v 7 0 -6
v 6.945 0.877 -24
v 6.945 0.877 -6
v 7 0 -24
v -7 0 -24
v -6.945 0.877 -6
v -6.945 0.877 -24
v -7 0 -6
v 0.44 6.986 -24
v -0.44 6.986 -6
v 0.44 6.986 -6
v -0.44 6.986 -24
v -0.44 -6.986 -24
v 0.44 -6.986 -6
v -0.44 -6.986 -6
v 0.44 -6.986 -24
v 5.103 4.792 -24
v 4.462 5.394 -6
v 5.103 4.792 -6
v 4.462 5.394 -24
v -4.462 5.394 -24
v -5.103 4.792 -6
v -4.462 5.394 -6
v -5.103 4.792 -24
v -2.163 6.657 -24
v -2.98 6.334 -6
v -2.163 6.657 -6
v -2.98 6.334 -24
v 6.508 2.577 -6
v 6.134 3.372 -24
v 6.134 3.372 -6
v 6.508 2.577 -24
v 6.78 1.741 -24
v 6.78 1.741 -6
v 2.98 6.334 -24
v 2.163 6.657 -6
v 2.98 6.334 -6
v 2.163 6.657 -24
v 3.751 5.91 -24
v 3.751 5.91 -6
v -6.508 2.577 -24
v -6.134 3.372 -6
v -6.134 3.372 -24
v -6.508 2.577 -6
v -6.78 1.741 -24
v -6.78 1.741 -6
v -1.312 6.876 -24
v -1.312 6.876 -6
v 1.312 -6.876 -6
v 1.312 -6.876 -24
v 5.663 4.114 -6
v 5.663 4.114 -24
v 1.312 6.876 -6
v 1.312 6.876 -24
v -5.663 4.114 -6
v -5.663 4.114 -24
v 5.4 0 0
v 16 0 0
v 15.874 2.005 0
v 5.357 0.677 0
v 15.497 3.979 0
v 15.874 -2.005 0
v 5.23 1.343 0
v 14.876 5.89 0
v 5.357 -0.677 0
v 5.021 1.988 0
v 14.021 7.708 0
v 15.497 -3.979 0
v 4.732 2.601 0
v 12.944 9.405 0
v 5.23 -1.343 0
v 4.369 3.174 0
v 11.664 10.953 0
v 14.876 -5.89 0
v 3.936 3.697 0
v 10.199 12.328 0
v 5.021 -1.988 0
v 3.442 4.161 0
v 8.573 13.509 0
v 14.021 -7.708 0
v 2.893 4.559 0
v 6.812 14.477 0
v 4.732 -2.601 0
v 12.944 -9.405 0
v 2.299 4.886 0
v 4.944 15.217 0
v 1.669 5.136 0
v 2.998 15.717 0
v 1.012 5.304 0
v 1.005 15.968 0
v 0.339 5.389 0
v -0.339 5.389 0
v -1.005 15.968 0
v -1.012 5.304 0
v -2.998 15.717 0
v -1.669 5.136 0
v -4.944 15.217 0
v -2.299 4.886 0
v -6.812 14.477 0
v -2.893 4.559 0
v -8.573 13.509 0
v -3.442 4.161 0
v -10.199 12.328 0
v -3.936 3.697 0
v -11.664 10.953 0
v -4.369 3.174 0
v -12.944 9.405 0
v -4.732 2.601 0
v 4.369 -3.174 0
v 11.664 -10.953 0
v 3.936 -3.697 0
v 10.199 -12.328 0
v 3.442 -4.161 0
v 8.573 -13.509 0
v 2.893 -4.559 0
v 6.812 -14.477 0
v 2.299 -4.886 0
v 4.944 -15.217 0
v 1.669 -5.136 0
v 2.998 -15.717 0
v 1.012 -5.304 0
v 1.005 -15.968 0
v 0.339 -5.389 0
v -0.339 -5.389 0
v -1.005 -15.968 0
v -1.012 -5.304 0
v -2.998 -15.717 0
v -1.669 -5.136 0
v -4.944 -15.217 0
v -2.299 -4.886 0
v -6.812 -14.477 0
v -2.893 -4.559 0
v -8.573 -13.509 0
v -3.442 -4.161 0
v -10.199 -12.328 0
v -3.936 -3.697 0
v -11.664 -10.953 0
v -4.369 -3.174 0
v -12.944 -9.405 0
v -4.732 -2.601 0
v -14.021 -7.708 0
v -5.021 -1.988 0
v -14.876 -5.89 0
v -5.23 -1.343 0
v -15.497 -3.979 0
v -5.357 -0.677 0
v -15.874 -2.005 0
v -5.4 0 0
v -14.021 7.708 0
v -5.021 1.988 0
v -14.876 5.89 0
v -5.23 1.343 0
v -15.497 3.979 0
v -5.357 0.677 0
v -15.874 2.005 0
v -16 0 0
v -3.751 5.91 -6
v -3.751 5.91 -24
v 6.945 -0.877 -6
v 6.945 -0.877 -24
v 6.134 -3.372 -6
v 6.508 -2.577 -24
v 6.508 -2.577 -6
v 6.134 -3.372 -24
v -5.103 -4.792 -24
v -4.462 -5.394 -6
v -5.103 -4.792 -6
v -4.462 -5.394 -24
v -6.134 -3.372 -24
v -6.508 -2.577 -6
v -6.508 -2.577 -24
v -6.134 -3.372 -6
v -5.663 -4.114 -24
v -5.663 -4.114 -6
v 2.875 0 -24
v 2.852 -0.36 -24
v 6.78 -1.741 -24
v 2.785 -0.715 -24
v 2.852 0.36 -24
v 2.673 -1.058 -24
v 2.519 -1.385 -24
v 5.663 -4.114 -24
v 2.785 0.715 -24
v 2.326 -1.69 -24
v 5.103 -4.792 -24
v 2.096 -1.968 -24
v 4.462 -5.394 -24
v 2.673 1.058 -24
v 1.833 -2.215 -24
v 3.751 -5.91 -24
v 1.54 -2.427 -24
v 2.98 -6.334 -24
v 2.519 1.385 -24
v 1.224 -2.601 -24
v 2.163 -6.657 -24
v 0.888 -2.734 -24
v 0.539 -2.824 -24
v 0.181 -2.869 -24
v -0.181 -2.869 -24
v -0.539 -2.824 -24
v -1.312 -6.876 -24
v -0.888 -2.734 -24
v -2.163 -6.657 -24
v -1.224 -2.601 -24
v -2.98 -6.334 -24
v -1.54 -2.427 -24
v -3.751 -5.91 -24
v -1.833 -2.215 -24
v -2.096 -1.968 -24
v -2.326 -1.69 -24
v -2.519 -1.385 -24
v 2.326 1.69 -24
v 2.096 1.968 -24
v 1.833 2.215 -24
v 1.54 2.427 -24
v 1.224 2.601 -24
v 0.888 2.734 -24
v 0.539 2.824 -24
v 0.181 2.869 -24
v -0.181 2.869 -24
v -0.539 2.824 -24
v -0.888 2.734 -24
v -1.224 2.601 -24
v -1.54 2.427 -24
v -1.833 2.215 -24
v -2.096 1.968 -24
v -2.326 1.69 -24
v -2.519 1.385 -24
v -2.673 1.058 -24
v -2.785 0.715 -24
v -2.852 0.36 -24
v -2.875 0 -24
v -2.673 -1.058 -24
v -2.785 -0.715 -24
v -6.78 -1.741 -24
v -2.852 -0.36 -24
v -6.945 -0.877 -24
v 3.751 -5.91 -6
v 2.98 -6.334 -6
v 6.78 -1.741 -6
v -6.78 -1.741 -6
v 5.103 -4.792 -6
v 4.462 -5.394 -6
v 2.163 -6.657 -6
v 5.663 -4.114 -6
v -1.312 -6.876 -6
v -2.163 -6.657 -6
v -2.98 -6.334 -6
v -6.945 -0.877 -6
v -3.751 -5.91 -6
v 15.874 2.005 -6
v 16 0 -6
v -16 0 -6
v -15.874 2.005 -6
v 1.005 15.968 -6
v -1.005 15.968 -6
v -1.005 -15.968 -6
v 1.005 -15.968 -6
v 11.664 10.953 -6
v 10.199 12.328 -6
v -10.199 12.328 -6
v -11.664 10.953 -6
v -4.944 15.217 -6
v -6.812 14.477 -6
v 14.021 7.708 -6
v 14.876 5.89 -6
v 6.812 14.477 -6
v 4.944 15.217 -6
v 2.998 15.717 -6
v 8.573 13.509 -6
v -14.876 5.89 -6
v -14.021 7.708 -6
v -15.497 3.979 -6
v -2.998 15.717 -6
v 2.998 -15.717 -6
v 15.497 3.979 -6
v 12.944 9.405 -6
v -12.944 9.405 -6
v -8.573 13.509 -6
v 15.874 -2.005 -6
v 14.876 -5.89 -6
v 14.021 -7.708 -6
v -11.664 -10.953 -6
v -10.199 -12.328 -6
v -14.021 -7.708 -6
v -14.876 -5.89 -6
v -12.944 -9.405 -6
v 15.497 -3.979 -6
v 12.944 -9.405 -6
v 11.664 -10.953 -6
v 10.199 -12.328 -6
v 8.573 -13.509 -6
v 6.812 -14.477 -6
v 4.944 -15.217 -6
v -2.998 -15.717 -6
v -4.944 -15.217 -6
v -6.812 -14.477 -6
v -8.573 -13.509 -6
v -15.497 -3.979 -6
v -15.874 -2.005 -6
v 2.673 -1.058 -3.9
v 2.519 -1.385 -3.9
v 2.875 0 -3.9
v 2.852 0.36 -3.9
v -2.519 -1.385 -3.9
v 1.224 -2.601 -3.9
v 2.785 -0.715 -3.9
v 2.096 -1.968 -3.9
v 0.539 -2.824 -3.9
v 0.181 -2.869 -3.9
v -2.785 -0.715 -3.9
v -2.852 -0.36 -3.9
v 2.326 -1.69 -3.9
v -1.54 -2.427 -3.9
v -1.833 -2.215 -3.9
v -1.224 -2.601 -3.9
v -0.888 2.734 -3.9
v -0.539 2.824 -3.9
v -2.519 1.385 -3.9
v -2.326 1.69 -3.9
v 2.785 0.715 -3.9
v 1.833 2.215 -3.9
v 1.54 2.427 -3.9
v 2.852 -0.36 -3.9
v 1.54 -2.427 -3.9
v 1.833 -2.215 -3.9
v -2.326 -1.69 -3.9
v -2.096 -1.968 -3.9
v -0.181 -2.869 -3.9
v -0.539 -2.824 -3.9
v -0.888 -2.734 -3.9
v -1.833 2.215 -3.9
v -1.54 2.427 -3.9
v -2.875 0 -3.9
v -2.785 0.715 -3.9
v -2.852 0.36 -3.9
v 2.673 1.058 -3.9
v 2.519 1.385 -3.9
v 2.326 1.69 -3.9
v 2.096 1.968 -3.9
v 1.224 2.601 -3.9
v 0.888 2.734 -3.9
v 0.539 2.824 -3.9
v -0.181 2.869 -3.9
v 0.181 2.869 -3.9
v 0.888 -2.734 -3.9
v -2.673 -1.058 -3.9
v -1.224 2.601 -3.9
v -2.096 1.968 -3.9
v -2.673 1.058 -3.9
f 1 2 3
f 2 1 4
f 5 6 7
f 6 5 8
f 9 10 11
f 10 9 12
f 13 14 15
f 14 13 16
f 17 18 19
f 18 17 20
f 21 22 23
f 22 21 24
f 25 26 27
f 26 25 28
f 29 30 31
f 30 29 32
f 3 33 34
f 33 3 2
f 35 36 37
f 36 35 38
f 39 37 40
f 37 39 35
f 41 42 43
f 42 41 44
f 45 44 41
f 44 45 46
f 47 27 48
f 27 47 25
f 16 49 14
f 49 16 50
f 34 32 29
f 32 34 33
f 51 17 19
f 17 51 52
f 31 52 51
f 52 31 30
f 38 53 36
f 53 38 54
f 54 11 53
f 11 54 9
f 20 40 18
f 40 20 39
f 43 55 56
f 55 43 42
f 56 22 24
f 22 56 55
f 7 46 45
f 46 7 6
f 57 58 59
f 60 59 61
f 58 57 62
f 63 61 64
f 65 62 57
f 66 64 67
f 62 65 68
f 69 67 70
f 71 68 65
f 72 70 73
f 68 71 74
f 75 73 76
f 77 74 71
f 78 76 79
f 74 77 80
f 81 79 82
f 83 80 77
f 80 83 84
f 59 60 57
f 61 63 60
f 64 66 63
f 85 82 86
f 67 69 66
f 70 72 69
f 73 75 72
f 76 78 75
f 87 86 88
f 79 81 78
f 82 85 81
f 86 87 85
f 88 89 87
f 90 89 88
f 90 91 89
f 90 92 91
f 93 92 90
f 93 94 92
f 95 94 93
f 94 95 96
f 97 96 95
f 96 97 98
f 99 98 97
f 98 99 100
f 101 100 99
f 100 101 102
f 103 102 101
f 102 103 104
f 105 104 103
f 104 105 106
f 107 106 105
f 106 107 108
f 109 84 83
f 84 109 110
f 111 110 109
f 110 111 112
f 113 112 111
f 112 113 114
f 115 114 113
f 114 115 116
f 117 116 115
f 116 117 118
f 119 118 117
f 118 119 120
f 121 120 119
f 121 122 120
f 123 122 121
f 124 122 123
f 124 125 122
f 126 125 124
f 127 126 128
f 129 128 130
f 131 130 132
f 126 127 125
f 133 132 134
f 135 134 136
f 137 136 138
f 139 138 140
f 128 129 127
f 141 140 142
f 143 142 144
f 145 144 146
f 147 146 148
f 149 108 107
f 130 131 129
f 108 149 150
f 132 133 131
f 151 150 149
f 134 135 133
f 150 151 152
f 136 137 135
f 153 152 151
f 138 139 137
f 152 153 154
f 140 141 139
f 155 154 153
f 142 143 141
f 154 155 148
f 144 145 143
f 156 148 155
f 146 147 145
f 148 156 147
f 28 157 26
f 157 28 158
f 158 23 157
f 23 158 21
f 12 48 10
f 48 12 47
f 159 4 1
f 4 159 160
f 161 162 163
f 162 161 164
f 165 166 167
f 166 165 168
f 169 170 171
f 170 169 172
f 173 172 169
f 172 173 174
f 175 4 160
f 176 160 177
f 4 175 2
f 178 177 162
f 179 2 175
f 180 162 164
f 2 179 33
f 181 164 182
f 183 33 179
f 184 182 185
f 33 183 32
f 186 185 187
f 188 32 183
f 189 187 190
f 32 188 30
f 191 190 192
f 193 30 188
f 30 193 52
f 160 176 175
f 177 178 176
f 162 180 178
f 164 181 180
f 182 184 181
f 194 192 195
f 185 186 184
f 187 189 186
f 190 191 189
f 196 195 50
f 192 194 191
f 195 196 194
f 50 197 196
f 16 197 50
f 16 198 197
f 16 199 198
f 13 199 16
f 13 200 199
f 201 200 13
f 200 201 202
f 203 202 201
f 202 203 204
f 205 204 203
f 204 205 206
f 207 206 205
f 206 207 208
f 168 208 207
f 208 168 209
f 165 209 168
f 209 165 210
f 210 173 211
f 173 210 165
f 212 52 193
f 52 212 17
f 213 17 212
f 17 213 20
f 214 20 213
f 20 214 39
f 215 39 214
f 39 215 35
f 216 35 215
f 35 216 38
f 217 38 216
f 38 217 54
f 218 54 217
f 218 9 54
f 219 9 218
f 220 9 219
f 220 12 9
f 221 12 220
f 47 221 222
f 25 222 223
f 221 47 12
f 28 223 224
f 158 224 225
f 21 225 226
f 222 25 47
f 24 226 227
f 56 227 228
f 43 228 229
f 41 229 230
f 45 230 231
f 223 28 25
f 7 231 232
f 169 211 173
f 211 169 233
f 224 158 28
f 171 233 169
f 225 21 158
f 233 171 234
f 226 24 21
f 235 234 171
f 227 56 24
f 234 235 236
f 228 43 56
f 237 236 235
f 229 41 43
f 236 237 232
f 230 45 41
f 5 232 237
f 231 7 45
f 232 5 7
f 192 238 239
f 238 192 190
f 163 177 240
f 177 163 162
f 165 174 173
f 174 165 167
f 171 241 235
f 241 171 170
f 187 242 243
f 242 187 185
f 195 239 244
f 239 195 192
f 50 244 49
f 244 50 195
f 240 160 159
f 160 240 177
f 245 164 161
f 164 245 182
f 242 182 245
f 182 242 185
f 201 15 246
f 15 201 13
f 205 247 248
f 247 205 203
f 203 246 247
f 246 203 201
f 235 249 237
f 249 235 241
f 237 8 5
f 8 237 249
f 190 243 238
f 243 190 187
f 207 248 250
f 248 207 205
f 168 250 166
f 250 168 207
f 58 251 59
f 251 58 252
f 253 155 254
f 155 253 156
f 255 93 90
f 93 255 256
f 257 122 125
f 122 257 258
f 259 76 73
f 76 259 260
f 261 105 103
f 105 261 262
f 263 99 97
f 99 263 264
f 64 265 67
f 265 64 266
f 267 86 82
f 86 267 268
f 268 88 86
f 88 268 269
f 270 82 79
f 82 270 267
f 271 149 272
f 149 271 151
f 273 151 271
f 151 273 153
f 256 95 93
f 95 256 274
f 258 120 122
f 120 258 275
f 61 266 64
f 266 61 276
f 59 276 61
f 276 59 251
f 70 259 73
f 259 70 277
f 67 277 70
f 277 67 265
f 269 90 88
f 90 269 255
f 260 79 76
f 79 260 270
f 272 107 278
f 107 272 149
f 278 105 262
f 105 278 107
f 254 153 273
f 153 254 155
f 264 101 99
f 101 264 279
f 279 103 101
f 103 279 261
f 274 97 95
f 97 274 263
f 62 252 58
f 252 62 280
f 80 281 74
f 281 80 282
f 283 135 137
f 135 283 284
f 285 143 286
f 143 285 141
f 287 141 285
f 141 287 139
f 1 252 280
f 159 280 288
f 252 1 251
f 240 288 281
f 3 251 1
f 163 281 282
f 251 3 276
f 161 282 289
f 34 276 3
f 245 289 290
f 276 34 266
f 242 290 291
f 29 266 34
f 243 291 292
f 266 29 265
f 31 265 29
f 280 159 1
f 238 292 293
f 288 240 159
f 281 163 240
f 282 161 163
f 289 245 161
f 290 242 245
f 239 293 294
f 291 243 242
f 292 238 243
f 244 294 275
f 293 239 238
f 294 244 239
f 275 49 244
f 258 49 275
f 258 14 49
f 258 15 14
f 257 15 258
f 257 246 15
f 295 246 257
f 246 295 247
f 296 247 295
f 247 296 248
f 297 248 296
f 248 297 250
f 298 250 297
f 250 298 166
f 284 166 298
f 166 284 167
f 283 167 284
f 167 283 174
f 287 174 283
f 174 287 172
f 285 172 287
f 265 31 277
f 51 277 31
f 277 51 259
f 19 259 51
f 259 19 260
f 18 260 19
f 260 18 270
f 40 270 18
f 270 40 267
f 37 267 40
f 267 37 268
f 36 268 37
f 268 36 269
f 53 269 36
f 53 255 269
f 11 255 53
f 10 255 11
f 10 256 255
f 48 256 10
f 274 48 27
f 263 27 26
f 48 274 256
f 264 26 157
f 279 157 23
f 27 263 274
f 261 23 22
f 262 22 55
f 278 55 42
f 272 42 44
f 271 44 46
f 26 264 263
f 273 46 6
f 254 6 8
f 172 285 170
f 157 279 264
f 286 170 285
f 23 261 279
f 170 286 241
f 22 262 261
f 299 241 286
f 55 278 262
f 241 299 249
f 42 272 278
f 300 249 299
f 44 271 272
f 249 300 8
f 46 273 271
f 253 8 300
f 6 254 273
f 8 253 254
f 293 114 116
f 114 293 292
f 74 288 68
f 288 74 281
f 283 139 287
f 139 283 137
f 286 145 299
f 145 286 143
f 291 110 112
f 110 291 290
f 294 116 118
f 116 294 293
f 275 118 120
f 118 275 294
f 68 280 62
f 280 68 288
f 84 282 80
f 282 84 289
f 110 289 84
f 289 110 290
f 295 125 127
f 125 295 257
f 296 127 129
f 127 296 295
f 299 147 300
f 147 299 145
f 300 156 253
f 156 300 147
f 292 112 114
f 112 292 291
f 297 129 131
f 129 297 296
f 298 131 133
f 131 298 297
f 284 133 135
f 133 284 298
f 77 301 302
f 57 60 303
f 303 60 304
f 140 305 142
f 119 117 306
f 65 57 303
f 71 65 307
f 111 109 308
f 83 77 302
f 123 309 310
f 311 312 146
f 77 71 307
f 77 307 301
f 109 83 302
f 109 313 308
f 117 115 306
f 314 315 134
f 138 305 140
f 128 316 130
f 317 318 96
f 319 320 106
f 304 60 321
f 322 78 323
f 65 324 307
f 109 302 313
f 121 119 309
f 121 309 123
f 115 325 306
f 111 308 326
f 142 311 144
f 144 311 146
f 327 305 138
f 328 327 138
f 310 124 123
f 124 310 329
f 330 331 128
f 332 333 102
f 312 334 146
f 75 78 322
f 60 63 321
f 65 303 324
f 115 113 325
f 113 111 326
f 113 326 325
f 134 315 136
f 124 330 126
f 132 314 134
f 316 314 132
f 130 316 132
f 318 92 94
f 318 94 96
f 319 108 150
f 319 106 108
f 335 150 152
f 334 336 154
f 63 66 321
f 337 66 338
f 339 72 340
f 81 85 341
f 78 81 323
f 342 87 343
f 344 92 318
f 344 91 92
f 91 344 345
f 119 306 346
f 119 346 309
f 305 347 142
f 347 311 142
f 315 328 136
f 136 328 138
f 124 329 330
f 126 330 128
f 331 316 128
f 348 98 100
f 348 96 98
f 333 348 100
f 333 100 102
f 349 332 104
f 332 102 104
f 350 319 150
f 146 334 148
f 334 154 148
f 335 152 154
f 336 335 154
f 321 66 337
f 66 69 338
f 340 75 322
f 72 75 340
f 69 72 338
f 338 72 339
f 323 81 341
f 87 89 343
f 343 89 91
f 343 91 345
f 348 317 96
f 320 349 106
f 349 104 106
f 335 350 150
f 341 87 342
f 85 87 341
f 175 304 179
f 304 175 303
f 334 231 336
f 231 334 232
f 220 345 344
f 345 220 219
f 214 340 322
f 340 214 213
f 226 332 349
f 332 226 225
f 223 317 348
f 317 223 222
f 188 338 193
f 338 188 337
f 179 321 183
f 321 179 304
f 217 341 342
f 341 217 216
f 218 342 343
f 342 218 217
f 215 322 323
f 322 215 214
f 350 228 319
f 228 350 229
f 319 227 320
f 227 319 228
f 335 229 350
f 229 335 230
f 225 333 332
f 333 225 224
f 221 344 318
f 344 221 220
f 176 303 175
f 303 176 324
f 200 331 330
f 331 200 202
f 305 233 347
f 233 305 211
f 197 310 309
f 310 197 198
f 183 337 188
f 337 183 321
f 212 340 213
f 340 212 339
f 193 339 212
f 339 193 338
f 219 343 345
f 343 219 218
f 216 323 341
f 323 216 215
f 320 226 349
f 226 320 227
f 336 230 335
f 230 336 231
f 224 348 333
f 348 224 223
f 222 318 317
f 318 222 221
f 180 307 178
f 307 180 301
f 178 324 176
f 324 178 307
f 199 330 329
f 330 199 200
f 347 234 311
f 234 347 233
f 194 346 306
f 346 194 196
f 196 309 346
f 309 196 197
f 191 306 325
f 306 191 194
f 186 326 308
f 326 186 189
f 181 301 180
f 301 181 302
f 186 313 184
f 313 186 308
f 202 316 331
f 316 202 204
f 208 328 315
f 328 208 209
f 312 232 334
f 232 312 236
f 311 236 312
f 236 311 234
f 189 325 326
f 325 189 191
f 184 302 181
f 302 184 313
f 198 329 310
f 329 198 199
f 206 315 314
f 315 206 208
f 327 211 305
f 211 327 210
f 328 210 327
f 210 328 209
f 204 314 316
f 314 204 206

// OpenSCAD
$fn = 50;


difference() {
	union() {
		translate(v = [0, 0, -24.0000000000]) {
			cylinder(h = 24, r = 7.0000000000);
		}
		translate(v = [0, 0, -6.0000000000]) {
			cylinder(h = 6, r = 16.0000000000);
		}
	}
	union() {
		translate(v = [0, 0, 0]) {
			rotate(a = [0, 0, 0]) {
				difference() {
					union() {
						#translate(v = [0, 0, -24.0000000000]) {
							cylinder(h = 24, r = 2.6000000000);
						}
						#translate(v = [0, 0, -3.9000000000]) {
							cylinder(h = 3.9000000000, r = 7.0000000000, r1 = 2.8750000000, r2 = 5.4000000000);
						}
						#translate(v = [0, 0, -24.0000000000]) {
							cylinder(h = 24, r = 2.8750000000);
						}
						#translate(v = [0, 0, -24.0000000000]) {
							cylinder(h = 24, r = 2.6000000000);
						}
					}
					union();
				}
			}
		}
	}
}
